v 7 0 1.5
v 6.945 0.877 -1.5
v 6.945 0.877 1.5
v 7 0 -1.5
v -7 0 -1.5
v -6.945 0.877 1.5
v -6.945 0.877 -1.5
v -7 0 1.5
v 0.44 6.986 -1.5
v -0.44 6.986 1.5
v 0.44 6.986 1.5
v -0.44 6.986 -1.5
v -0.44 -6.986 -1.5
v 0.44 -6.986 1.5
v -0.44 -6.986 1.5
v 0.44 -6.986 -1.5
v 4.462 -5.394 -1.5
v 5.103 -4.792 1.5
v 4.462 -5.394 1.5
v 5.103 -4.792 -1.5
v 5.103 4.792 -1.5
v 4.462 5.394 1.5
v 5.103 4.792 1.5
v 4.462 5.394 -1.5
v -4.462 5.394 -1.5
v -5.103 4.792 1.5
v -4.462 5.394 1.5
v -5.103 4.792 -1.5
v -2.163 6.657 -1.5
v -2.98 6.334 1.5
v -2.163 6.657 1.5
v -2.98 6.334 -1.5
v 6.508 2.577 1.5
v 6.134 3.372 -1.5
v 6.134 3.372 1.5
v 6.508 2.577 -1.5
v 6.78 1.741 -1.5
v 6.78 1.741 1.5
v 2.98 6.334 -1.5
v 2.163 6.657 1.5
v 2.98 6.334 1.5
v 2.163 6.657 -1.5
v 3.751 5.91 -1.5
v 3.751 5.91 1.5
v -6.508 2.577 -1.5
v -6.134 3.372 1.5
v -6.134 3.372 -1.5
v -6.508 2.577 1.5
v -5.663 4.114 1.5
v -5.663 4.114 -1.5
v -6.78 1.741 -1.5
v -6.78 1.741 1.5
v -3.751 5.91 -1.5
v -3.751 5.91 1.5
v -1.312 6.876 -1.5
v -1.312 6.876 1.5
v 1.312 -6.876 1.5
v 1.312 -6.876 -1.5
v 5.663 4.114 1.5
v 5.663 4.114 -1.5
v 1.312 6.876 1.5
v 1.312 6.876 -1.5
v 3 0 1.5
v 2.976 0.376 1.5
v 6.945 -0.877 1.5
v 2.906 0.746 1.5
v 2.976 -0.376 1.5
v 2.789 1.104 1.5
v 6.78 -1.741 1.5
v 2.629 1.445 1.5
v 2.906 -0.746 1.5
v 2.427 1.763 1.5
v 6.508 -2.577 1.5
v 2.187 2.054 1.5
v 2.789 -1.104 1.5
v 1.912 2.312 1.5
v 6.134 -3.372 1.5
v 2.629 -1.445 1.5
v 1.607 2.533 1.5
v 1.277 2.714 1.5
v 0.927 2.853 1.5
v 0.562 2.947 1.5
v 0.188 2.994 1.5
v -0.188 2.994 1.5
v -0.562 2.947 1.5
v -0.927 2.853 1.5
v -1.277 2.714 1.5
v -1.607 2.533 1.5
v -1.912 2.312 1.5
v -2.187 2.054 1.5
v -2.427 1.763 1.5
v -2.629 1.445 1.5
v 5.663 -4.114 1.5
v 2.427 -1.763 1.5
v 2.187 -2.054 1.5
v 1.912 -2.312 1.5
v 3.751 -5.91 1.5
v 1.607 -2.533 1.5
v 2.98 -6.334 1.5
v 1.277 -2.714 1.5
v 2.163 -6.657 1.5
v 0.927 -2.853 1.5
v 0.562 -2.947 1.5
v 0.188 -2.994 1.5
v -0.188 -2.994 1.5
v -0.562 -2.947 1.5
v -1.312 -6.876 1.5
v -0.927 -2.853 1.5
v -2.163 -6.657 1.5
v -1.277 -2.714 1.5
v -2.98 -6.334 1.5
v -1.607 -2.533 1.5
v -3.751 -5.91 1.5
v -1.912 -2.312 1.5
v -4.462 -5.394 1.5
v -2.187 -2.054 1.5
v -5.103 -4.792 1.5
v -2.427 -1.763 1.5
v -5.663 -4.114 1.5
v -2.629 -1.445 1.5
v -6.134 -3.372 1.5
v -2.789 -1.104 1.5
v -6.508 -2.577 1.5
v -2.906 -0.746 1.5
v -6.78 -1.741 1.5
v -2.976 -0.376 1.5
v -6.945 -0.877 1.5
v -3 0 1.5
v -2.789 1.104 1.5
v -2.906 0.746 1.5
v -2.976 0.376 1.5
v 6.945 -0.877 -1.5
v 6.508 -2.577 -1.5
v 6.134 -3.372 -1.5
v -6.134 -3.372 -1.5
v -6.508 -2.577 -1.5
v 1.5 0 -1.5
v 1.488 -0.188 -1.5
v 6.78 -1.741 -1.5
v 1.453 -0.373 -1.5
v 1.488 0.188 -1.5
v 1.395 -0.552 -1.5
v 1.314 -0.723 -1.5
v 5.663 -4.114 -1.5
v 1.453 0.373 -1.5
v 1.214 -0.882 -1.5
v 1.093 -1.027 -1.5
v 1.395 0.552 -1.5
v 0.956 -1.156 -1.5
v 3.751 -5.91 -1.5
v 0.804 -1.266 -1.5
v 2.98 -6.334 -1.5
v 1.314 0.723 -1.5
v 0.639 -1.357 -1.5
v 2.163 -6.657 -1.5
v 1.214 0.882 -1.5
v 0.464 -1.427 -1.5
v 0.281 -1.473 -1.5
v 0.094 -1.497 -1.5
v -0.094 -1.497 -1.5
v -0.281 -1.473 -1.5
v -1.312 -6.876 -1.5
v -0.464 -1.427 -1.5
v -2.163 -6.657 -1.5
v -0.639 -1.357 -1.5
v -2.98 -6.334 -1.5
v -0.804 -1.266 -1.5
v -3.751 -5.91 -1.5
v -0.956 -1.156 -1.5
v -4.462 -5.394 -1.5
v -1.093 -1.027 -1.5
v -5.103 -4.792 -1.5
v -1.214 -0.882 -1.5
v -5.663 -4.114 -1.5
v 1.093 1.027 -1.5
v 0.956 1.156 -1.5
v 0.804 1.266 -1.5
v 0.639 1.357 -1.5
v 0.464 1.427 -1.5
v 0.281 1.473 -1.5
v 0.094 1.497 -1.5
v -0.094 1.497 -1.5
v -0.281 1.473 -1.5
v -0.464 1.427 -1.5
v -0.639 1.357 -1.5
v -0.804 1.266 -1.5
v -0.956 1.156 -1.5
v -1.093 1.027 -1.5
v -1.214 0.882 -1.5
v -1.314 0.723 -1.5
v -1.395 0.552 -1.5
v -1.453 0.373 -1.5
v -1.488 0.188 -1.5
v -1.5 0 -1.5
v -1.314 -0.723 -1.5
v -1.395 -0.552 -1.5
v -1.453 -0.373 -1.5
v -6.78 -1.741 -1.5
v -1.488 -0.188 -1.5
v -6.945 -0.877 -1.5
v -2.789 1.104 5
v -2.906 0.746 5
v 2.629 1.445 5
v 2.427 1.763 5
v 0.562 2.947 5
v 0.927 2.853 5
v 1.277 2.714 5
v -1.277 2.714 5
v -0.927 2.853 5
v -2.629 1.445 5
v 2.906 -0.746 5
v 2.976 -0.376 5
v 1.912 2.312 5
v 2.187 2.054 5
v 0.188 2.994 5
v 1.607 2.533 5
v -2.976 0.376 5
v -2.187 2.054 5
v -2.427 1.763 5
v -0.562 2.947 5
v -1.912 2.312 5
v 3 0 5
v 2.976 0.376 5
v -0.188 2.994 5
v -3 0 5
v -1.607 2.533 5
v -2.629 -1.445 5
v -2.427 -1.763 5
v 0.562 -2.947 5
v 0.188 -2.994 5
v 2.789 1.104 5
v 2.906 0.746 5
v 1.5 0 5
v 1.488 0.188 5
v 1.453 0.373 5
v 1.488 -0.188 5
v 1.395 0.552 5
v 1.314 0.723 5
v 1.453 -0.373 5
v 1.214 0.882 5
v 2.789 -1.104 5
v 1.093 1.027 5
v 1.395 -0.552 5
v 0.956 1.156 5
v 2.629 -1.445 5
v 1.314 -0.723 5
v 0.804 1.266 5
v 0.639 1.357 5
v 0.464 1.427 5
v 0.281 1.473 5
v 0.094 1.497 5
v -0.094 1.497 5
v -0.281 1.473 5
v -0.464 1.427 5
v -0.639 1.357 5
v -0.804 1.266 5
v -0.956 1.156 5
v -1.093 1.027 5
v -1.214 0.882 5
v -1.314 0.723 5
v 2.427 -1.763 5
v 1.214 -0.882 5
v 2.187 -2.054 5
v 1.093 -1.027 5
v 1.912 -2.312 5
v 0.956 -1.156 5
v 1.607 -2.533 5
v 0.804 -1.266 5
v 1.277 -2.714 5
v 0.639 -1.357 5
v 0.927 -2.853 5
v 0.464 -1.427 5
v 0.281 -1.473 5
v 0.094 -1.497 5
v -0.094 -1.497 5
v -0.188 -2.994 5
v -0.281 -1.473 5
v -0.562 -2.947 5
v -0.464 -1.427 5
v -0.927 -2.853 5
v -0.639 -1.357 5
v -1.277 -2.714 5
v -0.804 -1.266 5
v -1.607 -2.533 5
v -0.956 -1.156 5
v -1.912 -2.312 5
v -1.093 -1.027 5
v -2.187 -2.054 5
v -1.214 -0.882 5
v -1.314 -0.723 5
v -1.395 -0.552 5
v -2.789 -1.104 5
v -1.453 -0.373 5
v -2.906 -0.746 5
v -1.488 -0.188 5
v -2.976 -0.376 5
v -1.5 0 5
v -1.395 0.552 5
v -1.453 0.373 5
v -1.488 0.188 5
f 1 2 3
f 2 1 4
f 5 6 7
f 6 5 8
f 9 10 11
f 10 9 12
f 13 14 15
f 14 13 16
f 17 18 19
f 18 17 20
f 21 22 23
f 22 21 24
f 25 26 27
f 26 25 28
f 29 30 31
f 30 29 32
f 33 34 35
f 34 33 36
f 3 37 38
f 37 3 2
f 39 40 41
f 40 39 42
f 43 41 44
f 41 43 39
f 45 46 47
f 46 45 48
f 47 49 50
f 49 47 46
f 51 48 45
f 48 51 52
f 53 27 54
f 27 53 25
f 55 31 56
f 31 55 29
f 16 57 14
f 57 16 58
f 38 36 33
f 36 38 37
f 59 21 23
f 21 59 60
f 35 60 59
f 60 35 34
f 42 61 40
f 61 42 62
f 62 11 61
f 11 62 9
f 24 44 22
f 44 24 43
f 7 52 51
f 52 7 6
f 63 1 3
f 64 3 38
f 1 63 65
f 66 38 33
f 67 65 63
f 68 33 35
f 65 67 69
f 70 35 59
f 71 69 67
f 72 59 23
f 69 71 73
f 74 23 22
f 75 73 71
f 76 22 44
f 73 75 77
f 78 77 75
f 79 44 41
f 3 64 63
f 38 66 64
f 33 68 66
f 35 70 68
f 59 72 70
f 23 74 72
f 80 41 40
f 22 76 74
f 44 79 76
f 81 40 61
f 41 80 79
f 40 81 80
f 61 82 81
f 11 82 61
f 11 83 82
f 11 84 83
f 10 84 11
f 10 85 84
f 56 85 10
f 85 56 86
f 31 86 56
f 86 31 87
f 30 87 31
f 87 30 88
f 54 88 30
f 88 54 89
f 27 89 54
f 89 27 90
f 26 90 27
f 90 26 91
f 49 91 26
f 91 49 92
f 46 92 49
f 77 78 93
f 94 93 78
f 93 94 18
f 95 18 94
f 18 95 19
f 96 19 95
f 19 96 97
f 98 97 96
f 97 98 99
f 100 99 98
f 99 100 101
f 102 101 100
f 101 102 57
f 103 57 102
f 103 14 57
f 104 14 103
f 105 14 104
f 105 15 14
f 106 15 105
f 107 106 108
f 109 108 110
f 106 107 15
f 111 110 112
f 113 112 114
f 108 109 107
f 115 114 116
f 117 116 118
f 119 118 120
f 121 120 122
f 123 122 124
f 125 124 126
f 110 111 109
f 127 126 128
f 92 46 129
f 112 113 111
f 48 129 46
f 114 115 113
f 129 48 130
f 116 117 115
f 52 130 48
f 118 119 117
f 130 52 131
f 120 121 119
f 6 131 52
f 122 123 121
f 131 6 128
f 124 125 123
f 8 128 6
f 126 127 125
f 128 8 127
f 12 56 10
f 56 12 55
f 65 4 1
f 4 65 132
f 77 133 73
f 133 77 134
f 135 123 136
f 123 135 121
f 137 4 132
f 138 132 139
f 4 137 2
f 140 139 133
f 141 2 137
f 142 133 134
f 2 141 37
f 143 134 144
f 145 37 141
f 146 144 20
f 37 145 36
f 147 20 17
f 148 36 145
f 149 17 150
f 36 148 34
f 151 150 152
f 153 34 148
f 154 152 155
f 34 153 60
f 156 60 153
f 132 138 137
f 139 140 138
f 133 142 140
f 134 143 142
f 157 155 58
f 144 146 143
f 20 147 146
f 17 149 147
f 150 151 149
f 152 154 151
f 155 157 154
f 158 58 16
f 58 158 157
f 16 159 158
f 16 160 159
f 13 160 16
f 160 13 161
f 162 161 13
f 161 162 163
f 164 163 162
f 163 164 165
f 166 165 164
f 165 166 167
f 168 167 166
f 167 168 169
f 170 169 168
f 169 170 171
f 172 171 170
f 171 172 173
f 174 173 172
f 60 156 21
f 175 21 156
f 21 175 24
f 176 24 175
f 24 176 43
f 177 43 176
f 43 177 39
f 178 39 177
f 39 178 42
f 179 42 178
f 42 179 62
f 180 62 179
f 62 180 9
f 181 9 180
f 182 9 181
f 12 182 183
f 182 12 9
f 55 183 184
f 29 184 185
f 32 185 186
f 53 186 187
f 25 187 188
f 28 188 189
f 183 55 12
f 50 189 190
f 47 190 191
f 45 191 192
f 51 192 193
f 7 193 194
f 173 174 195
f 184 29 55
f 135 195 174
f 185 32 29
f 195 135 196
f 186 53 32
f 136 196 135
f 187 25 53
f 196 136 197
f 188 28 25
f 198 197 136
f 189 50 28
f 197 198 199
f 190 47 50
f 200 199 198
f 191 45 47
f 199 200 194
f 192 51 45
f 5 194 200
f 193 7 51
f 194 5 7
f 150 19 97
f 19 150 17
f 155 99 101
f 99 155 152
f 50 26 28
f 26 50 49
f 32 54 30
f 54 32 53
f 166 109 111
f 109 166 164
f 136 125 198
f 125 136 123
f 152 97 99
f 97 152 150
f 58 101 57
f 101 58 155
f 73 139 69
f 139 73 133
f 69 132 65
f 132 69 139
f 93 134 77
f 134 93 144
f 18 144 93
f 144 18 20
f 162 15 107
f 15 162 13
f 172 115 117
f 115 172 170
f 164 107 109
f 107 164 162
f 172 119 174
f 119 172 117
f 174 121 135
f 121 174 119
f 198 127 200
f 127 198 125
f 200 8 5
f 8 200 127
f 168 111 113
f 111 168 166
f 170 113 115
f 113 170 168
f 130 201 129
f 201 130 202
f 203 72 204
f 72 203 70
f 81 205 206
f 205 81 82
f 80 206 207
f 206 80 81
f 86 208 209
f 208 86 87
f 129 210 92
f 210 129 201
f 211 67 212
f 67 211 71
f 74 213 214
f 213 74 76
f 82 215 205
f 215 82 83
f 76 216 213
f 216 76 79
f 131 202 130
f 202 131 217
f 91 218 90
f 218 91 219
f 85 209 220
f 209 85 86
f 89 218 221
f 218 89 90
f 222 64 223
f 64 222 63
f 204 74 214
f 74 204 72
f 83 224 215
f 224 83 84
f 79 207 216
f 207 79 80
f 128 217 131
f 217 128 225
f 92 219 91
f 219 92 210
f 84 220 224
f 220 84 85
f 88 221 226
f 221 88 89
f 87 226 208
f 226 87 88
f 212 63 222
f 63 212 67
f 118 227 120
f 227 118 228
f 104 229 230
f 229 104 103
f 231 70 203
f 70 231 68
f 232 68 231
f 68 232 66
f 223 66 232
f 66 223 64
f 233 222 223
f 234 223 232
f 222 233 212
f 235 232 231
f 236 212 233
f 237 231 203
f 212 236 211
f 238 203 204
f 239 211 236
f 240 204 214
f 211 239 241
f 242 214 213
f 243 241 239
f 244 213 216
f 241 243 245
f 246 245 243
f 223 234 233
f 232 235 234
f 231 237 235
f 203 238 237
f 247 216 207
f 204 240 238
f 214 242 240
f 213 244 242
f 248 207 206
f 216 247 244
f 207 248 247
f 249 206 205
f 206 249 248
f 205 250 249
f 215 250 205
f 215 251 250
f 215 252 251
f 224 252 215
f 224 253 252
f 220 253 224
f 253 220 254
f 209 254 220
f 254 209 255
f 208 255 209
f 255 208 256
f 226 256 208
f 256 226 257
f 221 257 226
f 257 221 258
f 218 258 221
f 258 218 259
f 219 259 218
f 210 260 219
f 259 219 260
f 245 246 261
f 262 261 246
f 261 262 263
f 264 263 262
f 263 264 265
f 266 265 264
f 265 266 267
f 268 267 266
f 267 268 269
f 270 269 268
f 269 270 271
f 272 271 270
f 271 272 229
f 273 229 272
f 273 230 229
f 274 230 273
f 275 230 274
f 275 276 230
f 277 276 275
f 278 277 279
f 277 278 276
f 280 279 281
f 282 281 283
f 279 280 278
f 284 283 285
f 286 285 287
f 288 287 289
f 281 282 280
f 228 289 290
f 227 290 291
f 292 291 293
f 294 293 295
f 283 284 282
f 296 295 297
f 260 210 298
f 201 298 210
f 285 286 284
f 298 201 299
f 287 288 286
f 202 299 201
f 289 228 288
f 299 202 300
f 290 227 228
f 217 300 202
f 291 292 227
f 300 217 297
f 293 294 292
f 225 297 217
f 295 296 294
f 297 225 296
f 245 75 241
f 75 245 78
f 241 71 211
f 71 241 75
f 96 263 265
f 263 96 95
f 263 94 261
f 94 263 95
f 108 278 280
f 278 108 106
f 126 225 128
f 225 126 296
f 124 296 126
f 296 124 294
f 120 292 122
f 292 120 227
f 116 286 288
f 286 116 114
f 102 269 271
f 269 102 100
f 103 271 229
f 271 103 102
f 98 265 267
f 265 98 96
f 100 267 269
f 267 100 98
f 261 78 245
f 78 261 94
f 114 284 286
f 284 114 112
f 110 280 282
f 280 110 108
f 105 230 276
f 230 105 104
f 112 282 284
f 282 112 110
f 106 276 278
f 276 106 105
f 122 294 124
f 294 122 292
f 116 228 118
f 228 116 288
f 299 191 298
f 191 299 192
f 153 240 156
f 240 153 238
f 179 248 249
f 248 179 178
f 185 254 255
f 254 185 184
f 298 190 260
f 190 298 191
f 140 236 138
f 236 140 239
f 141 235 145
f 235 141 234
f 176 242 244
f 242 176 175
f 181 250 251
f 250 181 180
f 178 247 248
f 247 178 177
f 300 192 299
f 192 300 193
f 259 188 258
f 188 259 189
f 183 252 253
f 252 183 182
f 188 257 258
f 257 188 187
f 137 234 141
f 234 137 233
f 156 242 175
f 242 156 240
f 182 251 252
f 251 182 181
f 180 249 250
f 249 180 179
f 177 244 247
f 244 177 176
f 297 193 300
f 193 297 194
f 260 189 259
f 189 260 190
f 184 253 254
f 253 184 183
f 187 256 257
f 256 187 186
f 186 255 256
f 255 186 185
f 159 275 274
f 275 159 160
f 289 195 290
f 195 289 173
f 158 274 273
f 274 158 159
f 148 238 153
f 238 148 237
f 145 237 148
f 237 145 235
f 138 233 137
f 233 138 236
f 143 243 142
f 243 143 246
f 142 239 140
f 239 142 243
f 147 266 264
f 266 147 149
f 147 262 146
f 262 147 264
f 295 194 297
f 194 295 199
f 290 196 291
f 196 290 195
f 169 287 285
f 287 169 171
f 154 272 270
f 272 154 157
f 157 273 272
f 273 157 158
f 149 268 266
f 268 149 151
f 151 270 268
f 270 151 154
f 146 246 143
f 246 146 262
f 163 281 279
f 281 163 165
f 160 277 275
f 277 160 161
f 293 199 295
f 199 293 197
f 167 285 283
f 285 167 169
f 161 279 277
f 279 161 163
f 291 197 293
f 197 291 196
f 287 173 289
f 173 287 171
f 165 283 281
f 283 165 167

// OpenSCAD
$fn = 50;


difference() {
	union() {
		translate(v = [0, 0, -1.5000000000]) {
			rotate(a = [0, 0, 0]) {
				cylinder(h = 3, r = 7.0000000000);
			}
		}
		translate(v = [0, 0, -1.5000000000]) {
			rotate(a = [0, 0, 0]) {
				cylinder(h = 6.5000000000, r = 3.0000000000);
			}
		}
	}
	union() {
		translate(v = [0, 0, -125.0000000000]) {
			rotate(a = [0, 0, 0]) {
				cylinder(h = 250, r = 1.5000000000);
			}
		}
	}
}
